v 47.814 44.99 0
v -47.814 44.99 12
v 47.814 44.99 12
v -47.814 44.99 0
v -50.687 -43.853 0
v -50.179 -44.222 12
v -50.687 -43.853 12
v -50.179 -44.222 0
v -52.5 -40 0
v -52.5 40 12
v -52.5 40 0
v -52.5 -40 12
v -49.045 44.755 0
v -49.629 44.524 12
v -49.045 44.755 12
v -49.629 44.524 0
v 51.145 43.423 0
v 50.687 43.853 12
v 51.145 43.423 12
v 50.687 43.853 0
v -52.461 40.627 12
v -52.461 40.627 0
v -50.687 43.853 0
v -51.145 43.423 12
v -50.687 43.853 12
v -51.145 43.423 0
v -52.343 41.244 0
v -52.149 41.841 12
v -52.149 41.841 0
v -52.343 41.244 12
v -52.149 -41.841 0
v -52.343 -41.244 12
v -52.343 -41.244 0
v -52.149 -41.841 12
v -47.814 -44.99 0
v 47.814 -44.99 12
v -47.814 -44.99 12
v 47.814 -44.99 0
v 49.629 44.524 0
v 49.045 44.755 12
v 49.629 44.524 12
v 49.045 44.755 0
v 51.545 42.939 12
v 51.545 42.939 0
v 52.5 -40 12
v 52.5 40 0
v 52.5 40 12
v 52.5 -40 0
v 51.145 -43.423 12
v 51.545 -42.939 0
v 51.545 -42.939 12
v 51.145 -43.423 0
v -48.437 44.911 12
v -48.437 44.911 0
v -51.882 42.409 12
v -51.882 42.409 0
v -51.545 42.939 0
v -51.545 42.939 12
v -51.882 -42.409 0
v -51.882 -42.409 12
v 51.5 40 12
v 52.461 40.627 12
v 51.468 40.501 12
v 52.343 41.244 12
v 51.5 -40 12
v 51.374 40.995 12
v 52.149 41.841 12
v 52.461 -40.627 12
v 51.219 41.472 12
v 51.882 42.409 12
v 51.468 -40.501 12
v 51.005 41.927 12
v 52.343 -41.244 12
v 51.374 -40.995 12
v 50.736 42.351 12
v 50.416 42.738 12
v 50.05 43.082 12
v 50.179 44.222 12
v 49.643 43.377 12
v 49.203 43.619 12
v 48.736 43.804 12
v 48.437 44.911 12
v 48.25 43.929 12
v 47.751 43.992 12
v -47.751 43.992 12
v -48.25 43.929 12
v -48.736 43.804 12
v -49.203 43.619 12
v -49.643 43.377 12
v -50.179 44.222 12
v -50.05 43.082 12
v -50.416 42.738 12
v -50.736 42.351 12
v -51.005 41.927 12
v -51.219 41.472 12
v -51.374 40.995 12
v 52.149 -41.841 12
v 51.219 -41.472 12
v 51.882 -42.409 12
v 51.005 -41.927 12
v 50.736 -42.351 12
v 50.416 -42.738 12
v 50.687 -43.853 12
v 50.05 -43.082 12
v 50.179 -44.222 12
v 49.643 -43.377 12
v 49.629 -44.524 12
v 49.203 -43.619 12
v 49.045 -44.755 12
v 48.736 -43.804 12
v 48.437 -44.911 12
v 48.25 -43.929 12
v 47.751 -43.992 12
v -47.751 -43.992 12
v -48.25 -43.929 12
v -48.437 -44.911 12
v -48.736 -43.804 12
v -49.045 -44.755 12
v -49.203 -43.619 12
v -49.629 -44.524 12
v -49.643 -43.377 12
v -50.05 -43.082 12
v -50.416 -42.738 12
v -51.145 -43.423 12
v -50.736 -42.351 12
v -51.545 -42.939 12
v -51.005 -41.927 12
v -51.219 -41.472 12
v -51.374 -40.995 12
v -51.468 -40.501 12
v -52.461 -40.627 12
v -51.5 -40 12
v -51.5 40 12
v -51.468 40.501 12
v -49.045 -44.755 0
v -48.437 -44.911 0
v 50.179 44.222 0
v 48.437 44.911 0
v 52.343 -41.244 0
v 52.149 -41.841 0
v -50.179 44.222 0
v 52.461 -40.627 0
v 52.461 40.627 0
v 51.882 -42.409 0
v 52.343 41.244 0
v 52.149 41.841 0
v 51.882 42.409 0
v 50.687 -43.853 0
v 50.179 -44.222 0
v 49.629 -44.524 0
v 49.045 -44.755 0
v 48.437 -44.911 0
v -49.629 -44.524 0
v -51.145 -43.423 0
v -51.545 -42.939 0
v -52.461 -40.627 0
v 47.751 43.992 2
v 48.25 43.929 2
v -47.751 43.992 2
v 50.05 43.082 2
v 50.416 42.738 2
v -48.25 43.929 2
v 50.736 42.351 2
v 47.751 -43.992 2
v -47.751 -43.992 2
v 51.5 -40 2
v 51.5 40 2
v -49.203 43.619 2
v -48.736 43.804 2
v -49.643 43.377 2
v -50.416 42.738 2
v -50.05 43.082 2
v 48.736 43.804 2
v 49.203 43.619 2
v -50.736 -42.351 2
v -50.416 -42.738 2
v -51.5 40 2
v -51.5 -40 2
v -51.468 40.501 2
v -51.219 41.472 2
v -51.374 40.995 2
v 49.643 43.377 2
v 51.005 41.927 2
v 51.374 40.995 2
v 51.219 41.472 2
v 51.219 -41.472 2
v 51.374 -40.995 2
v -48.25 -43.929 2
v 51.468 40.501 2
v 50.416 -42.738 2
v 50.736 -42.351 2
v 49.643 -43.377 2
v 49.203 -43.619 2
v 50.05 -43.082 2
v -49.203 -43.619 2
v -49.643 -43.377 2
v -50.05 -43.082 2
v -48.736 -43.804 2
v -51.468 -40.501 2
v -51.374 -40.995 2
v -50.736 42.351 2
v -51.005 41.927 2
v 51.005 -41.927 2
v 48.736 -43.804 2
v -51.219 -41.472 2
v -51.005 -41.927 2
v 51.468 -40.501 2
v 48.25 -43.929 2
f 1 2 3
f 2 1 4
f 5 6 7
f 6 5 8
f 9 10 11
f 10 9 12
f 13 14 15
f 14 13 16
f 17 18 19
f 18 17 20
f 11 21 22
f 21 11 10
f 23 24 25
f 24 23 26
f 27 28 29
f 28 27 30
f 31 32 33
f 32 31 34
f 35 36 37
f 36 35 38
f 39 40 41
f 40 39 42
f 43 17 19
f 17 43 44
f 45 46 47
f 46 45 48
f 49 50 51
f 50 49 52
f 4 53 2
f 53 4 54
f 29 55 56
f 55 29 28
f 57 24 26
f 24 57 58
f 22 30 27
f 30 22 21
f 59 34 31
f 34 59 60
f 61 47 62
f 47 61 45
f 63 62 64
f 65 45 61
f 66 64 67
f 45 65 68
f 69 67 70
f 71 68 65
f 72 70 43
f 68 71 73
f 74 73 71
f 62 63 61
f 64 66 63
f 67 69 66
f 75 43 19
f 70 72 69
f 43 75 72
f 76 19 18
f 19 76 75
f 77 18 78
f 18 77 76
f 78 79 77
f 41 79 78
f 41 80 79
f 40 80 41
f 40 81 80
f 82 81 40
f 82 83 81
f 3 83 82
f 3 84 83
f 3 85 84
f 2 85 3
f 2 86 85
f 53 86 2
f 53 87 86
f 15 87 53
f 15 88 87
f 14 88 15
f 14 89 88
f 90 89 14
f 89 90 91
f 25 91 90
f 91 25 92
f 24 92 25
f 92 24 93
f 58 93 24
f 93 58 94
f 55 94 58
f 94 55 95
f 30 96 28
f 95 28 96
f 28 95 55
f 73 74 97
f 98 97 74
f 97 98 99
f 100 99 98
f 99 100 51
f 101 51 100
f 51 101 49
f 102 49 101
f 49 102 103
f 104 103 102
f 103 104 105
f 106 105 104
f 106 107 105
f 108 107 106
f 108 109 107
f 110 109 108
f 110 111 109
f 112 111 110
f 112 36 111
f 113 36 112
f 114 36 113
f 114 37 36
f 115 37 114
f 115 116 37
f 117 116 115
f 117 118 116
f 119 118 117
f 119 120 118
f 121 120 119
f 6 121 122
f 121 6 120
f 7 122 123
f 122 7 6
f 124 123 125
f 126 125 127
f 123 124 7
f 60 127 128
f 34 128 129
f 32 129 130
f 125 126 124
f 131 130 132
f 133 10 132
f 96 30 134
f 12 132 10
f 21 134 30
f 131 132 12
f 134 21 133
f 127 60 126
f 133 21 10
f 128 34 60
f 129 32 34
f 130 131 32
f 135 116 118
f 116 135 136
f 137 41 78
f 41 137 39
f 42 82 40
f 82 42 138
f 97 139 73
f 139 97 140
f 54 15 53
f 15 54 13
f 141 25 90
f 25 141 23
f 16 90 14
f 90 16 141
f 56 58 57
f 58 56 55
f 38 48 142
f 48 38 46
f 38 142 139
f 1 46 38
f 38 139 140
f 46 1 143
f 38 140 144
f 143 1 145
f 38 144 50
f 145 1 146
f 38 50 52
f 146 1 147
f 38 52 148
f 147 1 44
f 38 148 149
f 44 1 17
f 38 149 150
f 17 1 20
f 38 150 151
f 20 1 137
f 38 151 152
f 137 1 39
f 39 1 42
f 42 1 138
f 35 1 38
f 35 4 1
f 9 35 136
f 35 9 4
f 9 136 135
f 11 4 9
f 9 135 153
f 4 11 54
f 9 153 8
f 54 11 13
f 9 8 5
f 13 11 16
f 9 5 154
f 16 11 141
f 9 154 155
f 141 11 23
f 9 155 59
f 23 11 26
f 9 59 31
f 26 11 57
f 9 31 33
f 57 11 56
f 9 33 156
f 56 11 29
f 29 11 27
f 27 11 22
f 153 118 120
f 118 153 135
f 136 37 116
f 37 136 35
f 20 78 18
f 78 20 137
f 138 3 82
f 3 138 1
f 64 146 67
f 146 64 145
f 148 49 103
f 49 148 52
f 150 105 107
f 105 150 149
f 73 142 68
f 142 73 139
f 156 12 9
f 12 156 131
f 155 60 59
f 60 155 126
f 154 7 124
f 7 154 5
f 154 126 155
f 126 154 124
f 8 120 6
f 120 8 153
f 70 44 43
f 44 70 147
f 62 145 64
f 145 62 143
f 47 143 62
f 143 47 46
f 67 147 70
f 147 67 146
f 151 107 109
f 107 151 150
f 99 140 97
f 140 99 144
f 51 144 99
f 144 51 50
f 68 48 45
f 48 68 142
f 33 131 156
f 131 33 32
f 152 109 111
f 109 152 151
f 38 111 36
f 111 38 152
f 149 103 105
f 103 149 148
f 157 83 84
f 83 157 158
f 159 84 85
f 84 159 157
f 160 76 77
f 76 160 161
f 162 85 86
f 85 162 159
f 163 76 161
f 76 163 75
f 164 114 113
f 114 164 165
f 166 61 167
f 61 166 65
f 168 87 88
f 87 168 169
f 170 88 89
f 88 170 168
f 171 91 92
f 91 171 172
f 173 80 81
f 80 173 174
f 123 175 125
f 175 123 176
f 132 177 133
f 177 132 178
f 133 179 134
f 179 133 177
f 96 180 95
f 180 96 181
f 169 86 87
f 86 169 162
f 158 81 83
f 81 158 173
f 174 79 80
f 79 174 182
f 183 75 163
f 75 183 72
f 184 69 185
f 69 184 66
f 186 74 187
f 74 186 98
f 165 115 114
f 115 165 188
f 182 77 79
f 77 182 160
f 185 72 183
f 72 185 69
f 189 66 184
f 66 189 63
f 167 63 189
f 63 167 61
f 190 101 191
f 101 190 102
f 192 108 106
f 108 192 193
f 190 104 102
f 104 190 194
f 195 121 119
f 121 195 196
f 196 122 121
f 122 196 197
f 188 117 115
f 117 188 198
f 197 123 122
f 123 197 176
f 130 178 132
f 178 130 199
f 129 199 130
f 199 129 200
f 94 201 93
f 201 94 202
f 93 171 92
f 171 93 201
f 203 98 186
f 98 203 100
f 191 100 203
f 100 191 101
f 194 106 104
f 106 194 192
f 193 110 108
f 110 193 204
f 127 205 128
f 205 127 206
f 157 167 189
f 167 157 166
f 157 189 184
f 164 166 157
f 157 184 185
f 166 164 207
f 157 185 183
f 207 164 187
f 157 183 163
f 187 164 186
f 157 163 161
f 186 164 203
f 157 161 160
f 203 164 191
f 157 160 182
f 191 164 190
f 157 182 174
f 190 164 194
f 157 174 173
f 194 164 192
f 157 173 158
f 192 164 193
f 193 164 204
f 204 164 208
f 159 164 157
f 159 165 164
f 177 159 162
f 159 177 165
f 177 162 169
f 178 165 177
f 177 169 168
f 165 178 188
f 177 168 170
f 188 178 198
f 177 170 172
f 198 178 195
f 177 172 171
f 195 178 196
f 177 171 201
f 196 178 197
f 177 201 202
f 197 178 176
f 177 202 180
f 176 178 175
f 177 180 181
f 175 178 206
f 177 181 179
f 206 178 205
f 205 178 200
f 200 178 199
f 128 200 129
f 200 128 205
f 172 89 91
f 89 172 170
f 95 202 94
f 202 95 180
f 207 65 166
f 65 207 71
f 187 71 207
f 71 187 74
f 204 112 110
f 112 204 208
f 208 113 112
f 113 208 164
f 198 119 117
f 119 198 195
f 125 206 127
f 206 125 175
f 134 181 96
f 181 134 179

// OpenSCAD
$fn = 50;


difference() {
	union() {
		hull() {
			translate(v = [-47.5000000000, 40.0000000000, 0]) {
				cylinder(h = 12, r = 5);
			}
			translate(v = [47.5000000000, 40.0000000000, 0]) {
				cylinder(h = 12, r = 5);
			}
			translate(v = [-47.5000000000, -40.0000000000, 0]) {
				cylinder(h = 12, r = 5);
			}
			translate(v = [47.5000000000, -40.0000000000, 0]) {
				cylinder(h = 12, r = 5);
			}
		}
	}
	union() {
		translate(v = [0, 0, 2]) {
			hull() {
				translate(v = [-47.5000000000, 40.0000000000, 0]) {
					cylinder(h = 10, r = 4);
				}
				translate(v = [47.5000000000, 40.0000000000, 0]) {
					cylinder(h = 10, r = 4);
				}
				translate(v = [-47.5000000000, -40.0000000000, 0]) {
					cylinder(h = 10, r = 4);
				}
				translate(v = [47.5000000000, -40.0000000000, 0]) {
					cylinder(h = 10, r = 4);
				}
			}
		}
	}
}
